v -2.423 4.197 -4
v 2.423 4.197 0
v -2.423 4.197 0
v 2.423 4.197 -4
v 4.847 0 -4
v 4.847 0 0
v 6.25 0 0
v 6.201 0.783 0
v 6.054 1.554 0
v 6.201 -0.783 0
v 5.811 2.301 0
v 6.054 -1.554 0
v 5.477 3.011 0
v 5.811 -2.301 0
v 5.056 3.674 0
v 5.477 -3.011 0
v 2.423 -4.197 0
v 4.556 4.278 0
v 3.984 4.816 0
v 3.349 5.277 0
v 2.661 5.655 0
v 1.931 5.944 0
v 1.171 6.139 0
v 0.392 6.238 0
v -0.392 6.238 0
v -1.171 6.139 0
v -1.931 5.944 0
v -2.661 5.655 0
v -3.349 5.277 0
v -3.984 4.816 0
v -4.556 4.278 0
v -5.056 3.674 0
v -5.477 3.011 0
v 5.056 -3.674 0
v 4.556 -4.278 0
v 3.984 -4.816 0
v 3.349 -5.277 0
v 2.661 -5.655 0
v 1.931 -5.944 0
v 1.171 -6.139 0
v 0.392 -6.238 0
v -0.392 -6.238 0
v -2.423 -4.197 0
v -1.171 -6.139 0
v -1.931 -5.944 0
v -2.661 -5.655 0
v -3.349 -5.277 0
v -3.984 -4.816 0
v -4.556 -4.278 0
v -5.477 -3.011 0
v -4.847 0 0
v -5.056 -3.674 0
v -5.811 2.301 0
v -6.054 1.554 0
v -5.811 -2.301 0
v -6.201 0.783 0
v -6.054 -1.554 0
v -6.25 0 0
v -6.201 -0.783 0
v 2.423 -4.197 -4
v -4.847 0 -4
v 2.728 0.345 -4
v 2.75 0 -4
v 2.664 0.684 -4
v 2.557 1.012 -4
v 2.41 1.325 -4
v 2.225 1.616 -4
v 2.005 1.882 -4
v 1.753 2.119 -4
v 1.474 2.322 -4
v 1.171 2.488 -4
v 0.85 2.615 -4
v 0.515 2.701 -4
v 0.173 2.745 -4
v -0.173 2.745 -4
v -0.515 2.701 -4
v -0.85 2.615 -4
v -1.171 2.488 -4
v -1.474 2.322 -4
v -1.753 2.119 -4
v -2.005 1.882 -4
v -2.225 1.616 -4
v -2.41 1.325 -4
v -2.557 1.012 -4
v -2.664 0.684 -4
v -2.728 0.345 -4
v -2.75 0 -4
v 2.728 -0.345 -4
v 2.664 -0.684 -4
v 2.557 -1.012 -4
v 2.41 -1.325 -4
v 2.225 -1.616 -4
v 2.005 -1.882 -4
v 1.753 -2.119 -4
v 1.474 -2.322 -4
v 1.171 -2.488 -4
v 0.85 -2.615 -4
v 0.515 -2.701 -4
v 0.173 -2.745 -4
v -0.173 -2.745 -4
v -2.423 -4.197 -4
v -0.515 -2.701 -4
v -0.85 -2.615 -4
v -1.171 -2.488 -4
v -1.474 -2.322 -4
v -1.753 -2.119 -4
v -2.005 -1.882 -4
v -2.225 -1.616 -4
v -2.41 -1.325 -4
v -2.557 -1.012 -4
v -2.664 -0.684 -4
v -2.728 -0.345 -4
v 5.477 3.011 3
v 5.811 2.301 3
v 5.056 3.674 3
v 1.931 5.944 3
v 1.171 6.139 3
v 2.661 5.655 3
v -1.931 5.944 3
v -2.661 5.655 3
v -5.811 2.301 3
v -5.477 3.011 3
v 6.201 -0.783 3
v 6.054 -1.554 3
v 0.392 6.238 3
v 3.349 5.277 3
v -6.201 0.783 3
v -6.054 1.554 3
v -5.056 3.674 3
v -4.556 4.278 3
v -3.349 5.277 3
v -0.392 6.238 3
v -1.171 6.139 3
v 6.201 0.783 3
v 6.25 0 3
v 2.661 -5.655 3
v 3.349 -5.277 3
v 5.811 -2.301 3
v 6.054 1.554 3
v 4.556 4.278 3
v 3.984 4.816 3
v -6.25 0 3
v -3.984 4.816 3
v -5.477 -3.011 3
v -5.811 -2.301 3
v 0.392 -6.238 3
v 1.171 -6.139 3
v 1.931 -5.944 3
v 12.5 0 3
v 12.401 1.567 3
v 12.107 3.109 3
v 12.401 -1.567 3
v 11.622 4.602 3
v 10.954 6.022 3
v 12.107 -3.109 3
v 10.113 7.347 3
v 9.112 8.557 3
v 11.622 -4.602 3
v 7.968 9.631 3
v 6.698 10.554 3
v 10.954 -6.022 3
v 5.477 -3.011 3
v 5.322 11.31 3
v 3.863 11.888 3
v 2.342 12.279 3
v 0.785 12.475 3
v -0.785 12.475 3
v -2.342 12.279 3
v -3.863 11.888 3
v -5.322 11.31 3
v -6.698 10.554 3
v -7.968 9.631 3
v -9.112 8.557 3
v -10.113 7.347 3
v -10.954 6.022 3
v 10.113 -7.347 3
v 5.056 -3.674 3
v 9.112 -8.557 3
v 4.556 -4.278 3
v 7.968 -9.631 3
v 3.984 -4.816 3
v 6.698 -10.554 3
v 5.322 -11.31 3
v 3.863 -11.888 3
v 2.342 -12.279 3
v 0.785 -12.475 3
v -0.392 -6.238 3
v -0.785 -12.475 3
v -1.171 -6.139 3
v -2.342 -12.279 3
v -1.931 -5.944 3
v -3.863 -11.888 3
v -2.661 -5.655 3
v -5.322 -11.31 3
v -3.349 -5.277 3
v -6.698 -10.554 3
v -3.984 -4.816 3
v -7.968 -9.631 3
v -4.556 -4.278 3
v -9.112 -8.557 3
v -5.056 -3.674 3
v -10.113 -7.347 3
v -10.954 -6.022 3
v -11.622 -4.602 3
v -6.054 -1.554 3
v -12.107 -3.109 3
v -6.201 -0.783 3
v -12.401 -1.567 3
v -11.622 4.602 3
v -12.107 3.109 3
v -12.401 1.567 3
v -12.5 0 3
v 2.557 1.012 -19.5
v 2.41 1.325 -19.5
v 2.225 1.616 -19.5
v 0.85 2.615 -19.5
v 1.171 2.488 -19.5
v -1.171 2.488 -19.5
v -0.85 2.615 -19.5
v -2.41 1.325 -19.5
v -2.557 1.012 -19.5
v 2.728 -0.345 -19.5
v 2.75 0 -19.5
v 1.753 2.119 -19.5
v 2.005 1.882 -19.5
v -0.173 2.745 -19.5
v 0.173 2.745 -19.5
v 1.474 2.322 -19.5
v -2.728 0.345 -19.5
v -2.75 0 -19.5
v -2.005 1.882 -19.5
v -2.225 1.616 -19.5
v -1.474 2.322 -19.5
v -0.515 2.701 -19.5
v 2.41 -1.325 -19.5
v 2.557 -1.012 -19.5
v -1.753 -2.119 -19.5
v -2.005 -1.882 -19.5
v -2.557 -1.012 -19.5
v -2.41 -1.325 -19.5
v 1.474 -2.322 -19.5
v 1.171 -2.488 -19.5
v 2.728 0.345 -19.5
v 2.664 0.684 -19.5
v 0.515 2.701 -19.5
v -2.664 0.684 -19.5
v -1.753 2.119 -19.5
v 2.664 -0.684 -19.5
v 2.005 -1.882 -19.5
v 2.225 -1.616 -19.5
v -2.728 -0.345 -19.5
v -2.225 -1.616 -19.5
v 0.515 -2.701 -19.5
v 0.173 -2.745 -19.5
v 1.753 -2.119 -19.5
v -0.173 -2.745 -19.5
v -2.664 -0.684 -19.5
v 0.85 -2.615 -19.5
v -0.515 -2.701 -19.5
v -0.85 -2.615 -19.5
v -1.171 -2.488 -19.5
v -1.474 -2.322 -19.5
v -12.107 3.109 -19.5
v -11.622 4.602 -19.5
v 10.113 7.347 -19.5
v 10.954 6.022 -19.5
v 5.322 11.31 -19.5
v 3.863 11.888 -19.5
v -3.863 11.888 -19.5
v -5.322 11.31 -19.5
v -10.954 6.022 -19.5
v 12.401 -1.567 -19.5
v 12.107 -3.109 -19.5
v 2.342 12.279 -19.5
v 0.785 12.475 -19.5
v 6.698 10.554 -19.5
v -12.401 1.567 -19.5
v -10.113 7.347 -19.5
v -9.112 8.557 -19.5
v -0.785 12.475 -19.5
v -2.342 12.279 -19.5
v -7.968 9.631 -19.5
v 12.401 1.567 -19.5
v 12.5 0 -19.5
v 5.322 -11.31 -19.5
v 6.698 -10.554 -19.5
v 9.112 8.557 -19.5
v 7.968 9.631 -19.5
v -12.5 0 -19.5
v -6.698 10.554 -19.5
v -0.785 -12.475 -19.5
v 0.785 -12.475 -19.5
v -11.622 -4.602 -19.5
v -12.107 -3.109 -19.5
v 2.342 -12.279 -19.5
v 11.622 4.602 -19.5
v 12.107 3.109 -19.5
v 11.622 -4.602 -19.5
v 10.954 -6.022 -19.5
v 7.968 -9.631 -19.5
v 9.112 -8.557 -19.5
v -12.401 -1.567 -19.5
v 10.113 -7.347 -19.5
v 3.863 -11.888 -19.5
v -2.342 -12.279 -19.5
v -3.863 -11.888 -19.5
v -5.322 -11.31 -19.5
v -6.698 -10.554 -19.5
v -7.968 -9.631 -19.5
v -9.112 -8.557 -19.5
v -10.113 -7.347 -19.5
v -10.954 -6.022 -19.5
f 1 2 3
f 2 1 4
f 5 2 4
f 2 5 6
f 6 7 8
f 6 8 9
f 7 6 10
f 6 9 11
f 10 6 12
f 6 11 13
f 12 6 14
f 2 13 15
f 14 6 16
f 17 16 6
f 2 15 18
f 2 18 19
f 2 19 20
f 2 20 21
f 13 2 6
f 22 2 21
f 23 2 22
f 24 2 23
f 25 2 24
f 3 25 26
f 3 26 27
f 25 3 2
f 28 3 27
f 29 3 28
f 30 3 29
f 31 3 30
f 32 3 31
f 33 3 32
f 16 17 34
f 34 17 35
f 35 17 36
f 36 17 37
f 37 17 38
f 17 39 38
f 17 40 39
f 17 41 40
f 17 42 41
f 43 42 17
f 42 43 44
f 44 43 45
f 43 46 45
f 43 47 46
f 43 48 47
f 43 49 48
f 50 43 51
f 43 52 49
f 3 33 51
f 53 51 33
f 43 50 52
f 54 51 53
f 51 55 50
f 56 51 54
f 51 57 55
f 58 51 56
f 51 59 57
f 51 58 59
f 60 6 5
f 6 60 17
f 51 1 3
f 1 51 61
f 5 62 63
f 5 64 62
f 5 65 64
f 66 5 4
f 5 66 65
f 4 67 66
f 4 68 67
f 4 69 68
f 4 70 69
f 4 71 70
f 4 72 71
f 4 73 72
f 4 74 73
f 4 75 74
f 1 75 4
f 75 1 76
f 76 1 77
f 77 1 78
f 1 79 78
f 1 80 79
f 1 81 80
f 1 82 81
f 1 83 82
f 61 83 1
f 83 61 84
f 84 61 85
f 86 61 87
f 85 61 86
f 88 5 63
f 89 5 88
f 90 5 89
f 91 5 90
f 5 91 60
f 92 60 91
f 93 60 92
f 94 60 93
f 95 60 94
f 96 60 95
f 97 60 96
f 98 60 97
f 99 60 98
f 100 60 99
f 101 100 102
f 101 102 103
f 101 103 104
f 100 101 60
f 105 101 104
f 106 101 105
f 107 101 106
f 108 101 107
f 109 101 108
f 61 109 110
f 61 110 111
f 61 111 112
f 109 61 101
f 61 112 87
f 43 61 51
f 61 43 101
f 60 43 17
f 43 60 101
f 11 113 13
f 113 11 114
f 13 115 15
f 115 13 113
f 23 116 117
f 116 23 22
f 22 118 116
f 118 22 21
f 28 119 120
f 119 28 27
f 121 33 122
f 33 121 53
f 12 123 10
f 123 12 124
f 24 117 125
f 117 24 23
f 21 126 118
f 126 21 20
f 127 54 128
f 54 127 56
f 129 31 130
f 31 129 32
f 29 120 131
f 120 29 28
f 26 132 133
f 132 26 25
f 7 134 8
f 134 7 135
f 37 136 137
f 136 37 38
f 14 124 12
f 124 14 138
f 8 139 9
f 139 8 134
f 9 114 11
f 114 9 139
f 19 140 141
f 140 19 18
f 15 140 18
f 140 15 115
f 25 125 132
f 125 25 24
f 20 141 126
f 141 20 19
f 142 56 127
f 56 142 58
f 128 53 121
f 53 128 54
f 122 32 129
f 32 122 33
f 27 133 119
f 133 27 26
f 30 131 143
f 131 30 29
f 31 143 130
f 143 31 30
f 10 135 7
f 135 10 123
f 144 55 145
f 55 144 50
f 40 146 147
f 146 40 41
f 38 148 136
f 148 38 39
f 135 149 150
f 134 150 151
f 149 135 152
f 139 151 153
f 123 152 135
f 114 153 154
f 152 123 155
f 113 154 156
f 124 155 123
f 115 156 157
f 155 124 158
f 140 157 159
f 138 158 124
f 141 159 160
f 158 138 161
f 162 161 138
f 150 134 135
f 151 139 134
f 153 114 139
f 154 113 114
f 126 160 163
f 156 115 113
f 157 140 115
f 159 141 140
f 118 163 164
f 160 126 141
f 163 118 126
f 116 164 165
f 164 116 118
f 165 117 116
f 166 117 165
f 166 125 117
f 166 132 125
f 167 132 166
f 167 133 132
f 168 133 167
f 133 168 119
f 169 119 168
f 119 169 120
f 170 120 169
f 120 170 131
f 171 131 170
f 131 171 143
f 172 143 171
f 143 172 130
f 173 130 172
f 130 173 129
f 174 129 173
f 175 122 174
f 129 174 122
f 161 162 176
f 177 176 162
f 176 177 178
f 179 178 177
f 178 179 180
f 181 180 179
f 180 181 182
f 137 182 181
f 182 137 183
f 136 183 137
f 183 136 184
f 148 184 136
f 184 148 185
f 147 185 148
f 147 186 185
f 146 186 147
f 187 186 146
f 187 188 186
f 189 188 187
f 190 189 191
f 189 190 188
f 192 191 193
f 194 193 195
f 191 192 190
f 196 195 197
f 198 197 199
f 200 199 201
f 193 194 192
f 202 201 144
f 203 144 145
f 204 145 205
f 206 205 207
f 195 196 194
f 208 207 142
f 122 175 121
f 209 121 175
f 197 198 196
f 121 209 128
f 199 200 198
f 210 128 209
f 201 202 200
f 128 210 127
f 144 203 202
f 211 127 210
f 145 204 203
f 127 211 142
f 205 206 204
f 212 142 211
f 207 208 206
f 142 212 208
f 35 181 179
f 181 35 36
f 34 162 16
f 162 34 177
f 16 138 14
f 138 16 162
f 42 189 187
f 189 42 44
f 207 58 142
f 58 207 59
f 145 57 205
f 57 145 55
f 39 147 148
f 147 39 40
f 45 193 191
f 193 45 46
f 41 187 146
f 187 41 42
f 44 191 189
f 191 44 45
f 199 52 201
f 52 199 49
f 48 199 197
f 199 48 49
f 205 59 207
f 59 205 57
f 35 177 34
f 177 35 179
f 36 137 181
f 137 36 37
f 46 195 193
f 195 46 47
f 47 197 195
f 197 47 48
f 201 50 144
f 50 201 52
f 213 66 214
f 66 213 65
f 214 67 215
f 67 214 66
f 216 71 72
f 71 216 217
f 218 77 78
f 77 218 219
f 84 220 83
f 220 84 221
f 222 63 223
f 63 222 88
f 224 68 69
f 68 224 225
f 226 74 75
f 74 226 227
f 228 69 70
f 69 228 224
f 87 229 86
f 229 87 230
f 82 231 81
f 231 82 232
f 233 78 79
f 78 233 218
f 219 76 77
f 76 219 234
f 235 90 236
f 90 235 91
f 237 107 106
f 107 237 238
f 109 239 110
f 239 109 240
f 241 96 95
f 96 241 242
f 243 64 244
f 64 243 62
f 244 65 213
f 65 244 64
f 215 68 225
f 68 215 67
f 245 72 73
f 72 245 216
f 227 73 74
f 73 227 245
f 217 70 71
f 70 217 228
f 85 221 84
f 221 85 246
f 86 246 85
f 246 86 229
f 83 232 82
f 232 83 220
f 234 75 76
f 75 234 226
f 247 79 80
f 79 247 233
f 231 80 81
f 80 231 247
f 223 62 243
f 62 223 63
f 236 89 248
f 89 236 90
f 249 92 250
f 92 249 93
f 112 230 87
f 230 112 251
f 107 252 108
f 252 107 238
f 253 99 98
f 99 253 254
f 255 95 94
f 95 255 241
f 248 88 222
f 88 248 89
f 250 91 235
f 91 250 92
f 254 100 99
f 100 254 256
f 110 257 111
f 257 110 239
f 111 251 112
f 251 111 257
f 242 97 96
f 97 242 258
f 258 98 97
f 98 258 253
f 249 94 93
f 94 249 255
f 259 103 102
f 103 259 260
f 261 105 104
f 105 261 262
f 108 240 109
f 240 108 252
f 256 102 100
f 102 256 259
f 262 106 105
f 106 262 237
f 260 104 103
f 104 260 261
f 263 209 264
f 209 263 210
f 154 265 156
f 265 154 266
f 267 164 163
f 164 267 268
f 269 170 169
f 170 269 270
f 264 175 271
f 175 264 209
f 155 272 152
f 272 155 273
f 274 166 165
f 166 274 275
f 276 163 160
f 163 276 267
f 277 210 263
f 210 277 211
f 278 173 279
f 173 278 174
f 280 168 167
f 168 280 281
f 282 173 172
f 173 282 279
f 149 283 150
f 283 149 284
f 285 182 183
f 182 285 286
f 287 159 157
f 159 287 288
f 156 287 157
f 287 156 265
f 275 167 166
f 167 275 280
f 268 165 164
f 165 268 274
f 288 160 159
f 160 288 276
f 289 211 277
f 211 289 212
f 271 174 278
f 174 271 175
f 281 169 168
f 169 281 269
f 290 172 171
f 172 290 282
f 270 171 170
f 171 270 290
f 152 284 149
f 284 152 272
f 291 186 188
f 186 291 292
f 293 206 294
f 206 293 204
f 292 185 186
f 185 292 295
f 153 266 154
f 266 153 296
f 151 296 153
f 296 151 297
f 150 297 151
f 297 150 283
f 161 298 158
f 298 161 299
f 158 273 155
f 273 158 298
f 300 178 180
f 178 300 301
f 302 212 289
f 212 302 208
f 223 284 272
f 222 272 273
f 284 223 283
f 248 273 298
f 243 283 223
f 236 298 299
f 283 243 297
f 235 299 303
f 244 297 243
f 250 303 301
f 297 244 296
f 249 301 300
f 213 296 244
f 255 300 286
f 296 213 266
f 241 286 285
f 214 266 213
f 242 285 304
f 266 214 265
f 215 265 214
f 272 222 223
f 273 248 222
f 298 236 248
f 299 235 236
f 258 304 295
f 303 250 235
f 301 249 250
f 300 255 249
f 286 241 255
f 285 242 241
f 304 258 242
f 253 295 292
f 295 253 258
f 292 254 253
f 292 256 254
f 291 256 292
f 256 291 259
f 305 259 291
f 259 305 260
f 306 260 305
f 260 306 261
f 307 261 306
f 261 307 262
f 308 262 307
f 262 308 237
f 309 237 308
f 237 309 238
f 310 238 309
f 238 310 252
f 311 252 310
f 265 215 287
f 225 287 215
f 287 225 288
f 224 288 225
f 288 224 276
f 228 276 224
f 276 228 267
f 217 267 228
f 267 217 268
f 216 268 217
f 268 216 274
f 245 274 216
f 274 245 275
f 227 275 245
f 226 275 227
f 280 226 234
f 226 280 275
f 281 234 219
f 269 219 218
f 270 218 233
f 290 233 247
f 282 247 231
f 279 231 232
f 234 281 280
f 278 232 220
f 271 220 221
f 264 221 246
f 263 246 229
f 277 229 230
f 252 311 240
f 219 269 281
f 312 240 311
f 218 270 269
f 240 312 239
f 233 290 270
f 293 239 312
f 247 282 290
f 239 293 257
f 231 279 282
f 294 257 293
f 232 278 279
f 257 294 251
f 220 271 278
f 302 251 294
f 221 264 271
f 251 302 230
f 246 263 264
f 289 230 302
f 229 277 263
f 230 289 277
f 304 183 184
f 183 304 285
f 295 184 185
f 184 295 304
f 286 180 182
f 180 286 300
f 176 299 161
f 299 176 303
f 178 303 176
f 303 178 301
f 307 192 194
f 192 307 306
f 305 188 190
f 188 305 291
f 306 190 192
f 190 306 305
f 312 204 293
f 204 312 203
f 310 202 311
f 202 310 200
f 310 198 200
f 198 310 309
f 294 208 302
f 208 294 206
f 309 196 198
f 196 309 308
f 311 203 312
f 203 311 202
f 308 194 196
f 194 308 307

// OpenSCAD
$fn = 50;

difference() {
	union() {
		translate(v = [0, 0, -19.5]) {
			cylinder(h = 22.5, r = 12.5);
		}
	}
	union() {
		translate(v = [0, 0, 0]) {
			rotate(a = [0, 0, 0]) {
				difference() {
					union() {
						translate(v = [0, 0, -4]) {
							linear_extrude(height = 4) {
								polygon(points = [[4.8468, 0.0], [2.4234000000000004, 4.197451927062417], [-2.423399999999999, 4.197451927062417], [-4.8468, 5.935618106107392e-16], [-2.423400000000002, -4.197451927062416], [2.423399999999997, -4.197451927062419]]);
							}
						}
					}
					union();
				}
			}
		}
		#cylinder(h = 3, r = 6.25);
		#translate(v = [0, 0, -100.0]) {
			cylinder(h = 200, r = 2.75);
		}
	}
}
